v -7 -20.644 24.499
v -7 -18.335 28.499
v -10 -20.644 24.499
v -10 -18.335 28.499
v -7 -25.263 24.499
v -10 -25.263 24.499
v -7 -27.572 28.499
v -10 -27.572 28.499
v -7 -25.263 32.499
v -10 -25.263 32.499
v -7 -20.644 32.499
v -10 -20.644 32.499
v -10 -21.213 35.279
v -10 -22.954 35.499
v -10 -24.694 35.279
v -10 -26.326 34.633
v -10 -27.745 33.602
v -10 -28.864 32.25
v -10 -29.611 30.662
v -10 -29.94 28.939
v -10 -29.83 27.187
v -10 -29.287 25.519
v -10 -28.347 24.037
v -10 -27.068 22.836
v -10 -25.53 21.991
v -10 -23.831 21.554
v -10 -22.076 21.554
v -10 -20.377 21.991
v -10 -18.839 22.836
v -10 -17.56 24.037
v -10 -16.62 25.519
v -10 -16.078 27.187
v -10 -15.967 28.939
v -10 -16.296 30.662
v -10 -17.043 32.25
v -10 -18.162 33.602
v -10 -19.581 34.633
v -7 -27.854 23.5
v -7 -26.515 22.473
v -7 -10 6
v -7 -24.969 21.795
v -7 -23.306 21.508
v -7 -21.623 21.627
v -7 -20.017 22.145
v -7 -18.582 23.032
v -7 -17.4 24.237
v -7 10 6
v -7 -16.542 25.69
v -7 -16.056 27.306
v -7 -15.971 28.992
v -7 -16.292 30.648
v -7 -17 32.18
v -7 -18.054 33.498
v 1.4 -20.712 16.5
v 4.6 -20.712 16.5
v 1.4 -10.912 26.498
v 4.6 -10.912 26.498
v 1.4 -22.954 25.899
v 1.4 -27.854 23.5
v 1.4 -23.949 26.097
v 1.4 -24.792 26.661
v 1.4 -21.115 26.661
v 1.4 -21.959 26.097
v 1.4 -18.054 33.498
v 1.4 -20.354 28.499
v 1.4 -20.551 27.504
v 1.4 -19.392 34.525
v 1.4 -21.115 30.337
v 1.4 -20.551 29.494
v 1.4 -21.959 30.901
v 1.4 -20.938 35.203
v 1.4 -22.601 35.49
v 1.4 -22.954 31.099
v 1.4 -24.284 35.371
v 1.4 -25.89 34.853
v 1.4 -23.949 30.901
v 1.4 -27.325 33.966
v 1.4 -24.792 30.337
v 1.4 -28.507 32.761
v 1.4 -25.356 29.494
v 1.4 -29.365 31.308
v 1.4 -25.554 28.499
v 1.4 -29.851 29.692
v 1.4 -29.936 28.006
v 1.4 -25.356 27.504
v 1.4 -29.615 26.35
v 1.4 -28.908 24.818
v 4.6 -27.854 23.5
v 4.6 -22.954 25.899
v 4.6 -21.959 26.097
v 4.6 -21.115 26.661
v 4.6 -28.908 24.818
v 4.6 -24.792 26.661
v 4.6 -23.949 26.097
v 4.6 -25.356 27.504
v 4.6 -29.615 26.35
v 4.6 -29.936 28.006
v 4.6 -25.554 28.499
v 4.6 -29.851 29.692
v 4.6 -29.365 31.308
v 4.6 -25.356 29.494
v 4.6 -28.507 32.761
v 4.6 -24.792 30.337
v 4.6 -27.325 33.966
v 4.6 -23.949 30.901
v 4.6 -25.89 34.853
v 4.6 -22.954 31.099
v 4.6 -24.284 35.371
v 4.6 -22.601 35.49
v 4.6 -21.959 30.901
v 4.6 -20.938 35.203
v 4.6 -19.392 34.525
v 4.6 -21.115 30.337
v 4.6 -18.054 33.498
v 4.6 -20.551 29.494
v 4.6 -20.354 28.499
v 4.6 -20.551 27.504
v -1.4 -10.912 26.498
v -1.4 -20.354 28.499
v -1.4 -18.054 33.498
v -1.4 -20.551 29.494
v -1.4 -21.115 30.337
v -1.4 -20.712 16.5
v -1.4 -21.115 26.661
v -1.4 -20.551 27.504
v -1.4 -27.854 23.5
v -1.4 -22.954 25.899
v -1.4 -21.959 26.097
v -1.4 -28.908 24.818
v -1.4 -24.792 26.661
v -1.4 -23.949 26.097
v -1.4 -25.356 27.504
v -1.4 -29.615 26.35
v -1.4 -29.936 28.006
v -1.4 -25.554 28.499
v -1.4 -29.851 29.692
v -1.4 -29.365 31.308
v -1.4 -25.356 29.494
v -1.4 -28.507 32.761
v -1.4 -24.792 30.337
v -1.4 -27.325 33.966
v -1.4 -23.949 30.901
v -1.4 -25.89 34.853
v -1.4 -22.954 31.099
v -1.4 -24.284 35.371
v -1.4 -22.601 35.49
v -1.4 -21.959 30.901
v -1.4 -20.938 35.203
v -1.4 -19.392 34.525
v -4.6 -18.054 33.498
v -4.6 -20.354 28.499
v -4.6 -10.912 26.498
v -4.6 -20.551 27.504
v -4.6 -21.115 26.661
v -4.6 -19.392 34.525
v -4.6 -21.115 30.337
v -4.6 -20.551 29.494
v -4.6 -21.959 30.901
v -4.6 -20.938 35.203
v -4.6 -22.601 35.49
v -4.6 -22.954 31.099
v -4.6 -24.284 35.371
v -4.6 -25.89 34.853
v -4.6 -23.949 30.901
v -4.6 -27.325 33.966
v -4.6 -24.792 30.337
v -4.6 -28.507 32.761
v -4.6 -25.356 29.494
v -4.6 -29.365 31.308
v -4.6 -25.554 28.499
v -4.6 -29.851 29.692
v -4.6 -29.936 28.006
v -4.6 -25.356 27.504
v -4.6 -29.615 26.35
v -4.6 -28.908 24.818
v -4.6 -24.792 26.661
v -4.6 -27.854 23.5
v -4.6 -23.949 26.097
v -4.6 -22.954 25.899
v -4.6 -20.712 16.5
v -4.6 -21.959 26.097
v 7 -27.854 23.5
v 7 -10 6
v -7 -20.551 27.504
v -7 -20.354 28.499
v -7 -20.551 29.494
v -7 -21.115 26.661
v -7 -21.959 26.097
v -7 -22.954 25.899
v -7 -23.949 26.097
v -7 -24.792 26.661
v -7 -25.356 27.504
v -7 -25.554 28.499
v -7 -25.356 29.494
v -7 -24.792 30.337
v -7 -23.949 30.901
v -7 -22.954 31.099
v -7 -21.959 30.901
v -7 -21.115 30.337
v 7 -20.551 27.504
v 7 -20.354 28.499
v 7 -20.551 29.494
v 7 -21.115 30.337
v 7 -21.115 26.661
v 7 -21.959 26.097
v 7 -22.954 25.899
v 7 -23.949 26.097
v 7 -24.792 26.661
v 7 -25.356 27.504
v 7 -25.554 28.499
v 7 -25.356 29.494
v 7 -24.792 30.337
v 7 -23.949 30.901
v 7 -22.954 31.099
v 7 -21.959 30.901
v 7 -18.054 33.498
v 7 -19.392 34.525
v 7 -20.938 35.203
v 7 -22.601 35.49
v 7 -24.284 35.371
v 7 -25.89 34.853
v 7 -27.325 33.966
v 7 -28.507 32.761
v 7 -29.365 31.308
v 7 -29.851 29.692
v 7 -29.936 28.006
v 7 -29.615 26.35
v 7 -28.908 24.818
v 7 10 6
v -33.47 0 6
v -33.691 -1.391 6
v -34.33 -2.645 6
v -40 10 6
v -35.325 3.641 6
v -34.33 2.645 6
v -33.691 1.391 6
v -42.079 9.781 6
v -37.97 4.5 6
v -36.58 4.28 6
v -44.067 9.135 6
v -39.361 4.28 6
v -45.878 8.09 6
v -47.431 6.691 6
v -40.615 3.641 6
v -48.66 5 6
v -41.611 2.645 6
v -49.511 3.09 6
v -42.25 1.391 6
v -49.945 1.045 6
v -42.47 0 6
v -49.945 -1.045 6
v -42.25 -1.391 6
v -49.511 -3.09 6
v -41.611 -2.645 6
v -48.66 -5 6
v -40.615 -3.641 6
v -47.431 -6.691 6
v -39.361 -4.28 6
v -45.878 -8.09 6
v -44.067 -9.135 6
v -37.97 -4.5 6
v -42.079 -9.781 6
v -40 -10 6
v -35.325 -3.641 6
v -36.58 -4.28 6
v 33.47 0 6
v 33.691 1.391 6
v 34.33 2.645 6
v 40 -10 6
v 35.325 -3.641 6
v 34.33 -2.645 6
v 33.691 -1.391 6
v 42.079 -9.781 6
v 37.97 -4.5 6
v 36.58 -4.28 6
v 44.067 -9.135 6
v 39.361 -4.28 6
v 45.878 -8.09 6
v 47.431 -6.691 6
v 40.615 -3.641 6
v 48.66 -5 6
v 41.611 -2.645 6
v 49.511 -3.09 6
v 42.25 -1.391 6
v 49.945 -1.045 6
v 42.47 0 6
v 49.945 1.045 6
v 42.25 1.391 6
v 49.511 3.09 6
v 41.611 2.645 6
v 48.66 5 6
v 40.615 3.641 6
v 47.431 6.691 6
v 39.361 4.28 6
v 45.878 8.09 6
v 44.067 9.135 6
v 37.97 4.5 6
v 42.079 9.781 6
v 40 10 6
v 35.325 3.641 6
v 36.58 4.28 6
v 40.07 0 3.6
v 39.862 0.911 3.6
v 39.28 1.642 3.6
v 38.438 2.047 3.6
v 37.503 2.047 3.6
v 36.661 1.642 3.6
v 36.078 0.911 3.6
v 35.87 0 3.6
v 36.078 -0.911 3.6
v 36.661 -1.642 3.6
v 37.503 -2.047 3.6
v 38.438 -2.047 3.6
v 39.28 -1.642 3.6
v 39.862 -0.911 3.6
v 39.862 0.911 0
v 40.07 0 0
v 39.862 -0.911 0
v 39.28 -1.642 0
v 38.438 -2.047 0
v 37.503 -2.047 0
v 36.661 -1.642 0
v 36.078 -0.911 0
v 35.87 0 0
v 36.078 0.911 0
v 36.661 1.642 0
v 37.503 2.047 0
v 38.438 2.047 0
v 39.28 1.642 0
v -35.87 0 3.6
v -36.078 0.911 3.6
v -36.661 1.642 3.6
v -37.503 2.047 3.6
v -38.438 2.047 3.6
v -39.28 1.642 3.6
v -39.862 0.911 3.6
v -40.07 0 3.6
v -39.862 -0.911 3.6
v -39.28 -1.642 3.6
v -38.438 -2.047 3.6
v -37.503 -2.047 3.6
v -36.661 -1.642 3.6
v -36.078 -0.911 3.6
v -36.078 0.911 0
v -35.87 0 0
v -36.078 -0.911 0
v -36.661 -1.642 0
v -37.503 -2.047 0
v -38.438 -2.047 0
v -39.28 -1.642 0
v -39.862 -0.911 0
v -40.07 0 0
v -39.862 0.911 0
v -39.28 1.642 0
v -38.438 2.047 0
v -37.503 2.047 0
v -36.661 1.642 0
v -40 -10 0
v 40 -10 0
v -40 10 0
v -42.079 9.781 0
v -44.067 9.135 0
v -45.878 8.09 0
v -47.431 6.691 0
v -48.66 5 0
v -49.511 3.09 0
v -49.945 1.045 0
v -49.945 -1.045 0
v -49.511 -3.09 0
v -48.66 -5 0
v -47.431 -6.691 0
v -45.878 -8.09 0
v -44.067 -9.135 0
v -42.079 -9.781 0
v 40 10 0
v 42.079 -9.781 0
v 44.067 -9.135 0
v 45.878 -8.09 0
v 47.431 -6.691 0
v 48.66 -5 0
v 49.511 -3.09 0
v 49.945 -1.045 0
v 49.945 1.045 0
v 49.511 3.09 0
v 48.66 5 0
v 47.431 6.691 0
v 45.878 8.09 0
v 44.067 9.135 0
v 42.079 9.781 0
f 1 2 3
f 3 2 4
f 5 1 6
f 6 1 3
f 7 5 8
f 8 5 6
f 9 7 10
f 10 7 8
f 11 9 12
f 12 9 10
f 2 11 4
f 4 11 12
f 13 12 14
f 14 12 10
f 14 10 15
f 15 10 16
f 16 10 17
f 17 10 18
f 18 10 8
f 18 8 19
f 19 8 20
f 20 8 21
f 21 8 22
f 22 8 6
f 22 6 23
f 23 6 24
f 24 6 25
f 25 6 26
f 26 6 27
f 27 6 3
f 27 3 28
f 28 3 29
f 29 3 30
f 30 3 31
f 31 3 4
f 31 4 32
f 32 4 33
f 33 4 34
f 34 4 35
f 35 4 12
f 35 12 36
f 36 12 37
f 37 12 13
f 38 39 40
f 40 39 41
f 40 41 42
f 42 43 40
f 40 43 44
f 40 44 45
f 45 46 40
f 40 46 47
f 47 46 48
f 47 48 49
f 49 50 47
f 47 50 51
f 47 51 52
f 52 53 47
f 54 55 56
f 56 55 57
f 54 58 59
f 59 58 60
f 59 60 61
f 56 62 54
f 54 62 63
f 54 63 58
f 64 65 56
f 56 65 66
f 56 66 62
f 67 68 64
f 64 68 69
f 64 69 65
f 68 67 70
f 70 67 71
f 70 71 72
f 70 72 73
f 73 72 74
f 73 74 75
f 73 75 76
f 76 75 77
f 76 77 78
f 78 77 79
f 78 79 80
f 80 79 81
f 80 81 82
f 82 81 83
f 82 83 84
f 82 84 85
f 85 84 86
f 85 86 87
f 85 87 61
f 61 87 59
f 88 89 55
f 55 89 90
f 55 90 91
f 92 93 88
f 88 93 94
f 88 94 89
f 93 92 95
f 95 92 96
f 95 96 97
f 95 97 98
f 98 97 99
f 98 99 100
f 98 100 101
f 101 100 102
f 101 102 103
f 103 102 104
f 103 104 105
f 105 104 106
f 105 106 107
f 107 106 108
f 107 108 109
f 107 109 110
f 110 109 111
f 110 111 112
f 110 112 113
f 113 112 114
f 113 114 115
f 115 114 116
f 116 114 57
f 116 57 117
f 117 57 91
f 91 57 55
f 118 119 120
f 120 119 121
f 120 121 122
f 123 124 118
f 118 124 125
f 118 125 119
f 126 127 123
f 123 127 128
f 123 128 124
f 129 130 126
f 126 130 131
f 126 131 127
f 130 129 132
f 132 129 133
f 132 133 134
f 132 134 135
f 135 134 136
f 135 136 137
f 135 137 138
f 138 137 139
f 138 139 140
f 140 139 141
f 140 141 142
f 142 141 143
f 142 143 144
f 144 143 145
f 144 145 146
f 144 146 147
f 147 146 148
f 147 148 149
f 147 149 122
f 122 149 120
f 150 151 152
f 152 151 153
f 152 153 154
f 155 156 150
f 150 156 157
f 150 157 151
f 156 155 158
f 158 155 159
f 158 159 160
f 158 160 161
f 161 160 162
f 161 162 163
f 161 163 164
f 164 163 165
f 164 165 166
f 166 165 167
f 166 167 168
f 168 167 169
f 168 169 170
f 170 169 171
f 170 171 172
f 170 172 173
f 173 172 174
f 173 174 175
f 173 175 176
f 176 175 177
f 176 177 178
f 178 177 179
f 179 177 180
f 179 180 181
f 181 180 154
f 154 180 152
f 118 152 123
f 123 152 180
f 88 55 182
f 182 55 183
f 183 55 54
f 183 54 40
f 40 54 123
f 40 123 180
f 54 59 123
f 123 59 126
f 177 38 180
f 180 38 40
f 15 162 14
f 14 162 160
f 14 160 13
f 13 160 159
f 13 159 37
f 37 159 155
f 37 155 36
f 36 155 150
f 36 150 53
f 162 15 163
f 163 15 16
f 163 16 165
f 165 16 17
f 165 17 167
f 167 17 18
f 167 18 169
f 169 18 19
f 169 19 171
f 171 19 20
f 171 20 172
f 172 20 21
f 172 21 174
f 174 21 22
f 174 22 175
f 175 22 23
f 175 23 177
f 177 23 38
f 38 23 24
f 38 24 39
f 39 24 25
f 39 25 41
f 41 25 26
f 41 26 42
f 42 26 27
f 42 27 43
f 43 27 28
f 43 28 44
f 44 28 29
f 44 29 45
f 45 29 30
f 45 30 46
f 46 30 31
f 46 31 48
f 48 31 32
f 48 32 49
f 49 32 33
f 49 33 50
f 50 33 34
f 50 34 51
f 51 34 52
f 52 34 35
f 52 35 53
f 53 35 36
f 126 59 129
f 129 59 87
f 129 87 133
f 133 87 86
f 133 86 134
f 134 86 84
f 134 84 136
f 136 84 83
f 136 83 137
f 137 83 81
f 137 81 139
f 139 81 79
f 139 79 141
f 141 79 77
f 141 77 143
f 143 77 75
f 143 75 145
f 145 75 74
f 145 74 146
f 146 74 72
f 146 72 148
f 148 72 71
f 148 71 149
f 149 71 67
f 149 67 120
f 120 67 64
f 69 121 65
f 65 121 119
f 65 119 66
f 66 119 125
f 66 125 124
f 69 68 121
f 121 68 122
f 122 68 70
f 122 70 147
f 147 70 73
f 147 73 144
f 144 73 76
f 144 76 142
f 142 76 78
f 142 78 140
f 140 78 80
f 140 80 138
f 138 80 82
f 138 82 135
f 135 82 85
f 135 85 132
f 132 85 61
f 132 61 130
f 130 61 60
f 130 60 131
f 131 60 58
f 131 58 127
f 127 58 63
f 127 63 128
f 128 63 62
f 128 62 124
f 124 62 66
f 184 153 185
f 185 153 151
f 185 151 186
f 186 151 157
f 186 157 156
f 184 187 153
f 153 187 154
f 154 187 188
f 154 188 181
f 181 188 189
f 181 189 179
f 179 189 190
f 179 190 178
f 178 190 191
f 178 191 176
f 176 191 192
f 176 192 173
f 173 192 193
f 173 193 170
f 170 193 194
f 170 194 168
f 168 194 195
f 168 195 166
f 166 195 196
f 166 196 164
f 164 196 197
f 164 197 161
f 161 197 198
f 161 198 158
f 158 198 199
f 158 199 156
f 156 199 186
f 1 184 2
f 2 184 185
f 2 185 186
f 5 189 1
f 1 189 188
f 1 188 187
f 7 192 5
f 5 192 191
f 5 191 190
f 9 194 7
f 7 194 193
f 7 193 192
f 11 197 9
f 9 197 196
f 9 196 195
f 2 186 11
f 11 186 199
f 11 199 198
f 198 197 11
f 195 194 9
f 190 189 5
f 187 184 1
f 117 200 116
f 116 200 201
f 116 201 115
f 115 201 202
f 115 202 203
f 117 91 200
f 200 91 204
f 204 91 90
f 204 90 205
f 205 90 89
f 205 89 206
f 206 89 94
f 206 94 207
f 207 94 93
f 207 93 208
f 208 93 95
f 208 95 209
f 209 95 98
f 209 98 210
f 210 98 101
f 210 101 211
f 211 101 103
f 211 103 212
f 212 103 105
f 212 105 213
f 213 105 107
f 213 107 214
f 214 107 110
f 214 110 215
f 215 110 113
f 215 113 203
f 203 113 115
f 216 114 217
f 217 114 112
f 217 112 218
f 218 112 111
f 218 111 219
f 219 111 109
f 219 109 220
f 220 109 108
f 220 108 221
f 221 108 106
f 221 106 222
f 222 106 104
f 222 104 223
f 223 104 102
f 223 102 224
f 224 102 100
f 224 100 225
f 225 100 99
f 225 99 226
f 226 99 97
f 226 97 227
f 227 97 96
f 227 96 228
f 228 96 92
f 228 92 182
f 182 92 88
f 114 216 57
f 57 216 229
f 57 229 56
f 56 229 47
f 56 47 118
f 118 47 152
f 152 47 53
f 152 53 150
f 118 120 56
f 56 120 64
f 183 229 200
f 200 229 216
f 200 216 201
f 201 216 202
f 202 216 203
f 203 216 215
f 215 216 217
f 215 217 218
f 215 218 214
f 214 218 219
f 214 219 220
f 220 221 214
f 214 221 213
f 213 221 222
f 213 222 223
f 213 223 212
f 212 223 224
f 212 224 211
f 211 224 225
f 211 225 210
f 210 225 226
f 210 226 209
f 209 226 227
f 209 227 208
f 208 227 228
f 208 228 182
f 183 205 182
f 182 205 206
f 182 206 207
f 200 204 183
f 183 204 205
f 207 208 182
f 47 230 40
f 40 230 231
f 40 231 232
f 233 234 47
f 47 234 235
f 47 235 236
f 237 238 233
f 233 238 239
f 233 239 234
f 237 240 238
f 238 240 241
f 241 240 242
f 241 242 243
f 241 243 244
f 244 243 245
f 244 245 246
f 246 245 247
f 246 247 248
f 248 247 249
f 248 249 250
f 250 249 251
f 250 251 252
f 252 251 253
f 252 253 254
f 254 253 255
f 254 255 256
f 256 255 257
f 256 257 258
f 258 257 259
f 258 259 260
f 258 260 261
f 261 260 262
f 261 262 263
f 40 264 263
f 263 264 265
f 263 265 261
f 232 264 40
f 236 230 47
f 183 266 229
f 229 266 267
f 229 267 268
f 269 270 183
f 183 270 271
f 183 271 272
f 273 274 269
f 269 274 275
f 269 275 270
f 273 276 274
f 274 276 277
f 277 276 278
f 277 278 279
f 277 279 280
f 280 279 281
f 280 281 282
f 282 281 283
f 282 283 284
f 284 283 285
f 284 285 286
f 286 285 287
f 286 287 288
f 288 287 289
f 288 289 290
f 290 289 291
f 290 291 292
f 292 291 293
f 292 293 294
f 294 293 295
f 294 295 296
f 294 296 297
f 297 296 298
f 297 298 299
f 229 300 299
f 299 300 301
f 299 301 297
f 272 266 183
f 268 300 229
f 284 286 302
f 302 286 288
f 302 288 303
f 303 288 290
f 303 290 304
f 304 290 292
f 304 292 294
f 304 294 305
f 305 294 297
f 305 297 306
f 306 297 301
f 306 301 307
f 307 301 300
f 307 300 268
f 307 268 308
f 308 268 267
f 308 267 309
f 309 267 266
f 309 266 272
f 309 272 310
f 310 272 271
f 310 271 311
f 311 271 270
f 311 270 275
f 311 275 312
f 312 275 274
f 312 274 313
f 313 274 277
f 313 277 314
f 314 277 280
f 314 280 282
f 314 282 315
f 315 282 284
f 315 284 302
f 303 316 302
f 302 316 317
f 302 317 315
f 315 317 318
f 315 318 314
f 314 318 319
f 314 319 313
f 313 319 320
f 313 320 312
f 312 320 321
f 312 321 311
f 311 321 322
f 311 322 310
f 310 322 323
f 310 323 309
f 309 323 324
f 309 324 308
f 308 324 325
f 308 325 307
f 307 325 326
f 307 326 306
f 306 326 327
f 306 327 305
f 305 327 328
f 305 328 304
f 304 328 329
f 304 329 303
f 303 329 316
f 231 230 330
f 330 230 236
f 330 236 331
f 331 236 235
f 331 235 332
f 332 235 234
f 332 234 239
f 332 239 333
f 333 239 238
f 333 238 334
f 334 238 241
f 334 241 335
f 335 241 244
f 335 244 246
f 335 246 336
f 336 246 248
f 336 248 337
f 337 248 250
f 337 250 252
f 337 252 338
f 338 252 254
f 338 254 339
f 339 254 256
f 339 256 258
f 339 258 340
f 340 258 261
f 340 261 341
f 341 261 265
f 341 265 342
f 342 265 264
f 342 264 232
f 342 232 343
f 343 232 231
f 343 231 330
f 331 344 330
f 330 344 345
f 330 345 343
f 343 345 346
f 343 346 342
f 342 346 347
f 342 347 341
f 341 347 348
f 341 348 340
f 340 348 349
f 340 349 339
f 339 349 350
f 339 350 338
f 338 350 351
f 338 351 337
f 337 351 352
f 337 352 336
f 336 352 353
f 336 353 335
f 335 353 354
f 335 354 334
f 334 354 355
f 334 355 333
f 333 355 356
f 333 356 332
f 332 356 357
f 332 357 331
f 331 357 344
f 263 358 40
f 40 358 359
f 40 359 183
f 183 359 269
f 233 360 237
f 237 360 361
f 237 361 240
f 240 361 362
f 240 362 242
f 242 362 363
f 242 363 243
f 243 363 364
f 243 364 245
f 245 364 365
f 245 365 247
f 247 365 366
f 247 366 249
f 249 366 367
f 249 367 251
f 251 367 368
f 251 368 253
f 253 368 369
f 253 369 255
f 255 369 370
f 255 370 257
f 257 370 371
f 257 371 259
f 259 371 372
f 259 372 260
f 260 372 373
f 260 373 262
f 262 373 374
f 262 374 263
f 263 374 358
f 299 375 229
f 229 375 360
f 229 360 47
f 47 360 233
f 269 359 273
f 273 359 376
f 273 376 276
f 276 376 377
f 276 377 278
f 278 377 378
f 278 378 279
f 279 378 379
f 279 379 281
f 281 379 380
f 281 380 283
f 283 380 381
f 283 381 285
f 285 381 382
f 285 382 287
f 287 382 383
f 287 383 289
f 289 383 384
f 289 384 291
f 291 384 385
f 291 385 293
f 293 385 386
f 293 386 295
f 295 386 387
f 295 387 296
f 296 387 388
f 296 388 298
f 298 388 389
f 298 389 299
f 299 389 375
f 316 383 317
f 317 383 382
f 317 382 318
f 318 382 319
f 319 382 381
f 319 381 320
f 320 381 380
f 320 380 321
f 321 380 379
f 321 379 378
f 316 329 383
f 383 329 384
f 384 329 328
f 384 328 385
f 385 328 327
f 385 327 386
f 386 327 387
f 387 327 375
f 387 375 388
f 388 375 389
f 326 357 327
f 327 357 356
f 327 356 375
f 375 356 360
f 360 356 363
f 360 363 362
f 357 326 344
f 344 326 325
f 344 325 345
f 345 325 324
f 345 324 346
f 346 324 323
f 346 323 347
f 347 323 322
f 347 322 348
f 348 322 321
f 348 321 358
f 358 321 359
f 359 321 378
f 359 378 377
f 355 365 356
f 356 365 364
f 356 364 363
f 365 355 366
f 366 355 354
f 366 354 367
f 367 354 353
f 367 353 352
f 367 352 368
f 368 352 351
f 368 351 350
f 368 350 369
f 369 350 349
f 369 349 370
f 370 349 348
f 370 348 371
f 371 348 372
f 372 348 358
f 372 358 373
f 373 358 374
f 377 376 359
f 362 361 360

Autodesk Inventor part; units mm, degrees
ref_plane "YZ Plane" through (0, 0, 0) normal (1, 0, 0) x (0, 1, 0)
ref_plane "XZ Plane" through (0, 0, 0) normal (0, 1, 0) x (-1, 0, 0)
ref_plane "XY Plane" through (0, 0, 0) normal (0, 0, 1) x (1, 0, 0)
sketch "Esquisse1" plane through (0, 0, 0) normal (0, 0, 1) x (1, 0, 0)
  line L0 (-40, 0) -> (40, 0) construction
  line L1 (-40, -10) -> (40, -10)
  line L2 (40, 10) -> (-40, 10)
  arc A0 (-40, 10) -> (-40, -10) centre (-40, 0) ccw
  arc A1 (40, -10) -> (40, 10) centre (40, 0) ccw
  point P0 (0, 0)
  point P1 (0, 0)
  dimension "d0" = 20
  dimension "d1" = 80
extrude "Extrusion1" add sketch "Esquisse1" along normal blind 6
sketch "Esquisse2" plane through (0, 0, 6) normal (0, 0, 1) x (1, 0, 0)
  line L0 (-37.9704, 0) -> (37.9704, 0) construction
  point P0 (0, 0)
  point P1 (0, 0)
hole "Perçage1" at (-37.9704, 0, 6) at (37.9704, 0, 6) direction (0, 0, -1) diameter 4.2 depth 6 countersink diameter 9 countersink angle 90
sketch "Esquisse3" plane through (0, 0, 0) normal (1, 0, 0) x (0, 1, 0)
  line L0 (10, 6) -> (-10, 6) projected
  line L1 (10, 6) -> (-18.0536, 33.498)
  line L2 (-10, 0) -> (-10, 6) projected
  line L3 (-10, 6) -> (-27.8536, 23.5)
  arc A0 (-18.0536, 33.498) -> (-27.8536, 23.5) centre (-22.9536, 28.499) ccw
  circle A1 centre (-22.9536, 28.499) radius 2.6
  point P0 (0, 0)
  dimension "d11" = 14
  dimension "d12" = 5.2
  dimension "d13" = 25
extrude "Extrusion2" add sketch "Esquisse3" along normal mid plane 14
sketch "Esquisse4" plane through (-7, -18.0536, 33.498) normal (0, 0.7, 0.7141) x (1, 0, 0)
  line L0 (11.6, -10) -> (8.4, -10)
  line L1 (8.4, -10) -> (8.4, 10)
  line L2 (8.4, 10) -> (11.6, 10)
  line L3 (11.6, 10) -> (11.6, -10)
  line L4 (0, 0) -> (14, 0) projected
  line L5 (11.6, -10) -> (8.4, 10) construction
  line L6 (8.4, -10) -> (11.6, 10) construction
  line L7 (7, 0) -> (7, 13.553)
  line L8 (2.4, -10) -> (5.6, -10)
  line L9 (5.6, -10) -> (5.6, 10)
  line L10 (5.6, 10) -> (2.4, 10)
  line L11 (2.4, 10) -> (2.4, -10)
  line L12 (2.4, -10) -> (5.6, 10) construction
  line L13 (5.6, -10) -> (2.4, 10) construction
  point P0 (7, 36.3414)
  point P1 (10, 0)
  point P2 (4, 0)
  dimension "d16" = 3.2
  dimension "d17" = 20
  dimension "d18" = 1.4
extrude "Extrusion3" cut sketch "Esquisse4" along normal through all both and the other way through all
sketch "Esquisse5" plane through (-7, 0, 0) normal (-1, 0, 0) x (0, 0, 1)
  circle A0 centre (28.499, -22.9536) radius 2.6 construction
  circle A1 centre (28.499, -22.9536) radius 7
  line L0 (33.498, -18.0536) -> (6, 10) construction
  line L1 (28.499, -18.3348) -> (32.499, -20.6442)
  line L2 (32.499, -20.6442) -> (32.499, -25.263)
  line L3 (32.499, -25.263) -> (28.499, -27.5724)
  line L4 (28.499, -27.5724) -> (24.499, -25.263)
  line L5 (24.499, -25.263) -> (24.499, -20.6442)
  line L6 (24.499, -20.6442) -> (28.499, -18.3348)
  line L7 (28.499, -22.9536) -> (28.499, -18.3348) construction
  point P0 (0, 0)
  dimension "d21" = 8
extrude "Extrusion4" add sketch "Esquisse5" along normal blind 3
properties part number "support_gopro"
